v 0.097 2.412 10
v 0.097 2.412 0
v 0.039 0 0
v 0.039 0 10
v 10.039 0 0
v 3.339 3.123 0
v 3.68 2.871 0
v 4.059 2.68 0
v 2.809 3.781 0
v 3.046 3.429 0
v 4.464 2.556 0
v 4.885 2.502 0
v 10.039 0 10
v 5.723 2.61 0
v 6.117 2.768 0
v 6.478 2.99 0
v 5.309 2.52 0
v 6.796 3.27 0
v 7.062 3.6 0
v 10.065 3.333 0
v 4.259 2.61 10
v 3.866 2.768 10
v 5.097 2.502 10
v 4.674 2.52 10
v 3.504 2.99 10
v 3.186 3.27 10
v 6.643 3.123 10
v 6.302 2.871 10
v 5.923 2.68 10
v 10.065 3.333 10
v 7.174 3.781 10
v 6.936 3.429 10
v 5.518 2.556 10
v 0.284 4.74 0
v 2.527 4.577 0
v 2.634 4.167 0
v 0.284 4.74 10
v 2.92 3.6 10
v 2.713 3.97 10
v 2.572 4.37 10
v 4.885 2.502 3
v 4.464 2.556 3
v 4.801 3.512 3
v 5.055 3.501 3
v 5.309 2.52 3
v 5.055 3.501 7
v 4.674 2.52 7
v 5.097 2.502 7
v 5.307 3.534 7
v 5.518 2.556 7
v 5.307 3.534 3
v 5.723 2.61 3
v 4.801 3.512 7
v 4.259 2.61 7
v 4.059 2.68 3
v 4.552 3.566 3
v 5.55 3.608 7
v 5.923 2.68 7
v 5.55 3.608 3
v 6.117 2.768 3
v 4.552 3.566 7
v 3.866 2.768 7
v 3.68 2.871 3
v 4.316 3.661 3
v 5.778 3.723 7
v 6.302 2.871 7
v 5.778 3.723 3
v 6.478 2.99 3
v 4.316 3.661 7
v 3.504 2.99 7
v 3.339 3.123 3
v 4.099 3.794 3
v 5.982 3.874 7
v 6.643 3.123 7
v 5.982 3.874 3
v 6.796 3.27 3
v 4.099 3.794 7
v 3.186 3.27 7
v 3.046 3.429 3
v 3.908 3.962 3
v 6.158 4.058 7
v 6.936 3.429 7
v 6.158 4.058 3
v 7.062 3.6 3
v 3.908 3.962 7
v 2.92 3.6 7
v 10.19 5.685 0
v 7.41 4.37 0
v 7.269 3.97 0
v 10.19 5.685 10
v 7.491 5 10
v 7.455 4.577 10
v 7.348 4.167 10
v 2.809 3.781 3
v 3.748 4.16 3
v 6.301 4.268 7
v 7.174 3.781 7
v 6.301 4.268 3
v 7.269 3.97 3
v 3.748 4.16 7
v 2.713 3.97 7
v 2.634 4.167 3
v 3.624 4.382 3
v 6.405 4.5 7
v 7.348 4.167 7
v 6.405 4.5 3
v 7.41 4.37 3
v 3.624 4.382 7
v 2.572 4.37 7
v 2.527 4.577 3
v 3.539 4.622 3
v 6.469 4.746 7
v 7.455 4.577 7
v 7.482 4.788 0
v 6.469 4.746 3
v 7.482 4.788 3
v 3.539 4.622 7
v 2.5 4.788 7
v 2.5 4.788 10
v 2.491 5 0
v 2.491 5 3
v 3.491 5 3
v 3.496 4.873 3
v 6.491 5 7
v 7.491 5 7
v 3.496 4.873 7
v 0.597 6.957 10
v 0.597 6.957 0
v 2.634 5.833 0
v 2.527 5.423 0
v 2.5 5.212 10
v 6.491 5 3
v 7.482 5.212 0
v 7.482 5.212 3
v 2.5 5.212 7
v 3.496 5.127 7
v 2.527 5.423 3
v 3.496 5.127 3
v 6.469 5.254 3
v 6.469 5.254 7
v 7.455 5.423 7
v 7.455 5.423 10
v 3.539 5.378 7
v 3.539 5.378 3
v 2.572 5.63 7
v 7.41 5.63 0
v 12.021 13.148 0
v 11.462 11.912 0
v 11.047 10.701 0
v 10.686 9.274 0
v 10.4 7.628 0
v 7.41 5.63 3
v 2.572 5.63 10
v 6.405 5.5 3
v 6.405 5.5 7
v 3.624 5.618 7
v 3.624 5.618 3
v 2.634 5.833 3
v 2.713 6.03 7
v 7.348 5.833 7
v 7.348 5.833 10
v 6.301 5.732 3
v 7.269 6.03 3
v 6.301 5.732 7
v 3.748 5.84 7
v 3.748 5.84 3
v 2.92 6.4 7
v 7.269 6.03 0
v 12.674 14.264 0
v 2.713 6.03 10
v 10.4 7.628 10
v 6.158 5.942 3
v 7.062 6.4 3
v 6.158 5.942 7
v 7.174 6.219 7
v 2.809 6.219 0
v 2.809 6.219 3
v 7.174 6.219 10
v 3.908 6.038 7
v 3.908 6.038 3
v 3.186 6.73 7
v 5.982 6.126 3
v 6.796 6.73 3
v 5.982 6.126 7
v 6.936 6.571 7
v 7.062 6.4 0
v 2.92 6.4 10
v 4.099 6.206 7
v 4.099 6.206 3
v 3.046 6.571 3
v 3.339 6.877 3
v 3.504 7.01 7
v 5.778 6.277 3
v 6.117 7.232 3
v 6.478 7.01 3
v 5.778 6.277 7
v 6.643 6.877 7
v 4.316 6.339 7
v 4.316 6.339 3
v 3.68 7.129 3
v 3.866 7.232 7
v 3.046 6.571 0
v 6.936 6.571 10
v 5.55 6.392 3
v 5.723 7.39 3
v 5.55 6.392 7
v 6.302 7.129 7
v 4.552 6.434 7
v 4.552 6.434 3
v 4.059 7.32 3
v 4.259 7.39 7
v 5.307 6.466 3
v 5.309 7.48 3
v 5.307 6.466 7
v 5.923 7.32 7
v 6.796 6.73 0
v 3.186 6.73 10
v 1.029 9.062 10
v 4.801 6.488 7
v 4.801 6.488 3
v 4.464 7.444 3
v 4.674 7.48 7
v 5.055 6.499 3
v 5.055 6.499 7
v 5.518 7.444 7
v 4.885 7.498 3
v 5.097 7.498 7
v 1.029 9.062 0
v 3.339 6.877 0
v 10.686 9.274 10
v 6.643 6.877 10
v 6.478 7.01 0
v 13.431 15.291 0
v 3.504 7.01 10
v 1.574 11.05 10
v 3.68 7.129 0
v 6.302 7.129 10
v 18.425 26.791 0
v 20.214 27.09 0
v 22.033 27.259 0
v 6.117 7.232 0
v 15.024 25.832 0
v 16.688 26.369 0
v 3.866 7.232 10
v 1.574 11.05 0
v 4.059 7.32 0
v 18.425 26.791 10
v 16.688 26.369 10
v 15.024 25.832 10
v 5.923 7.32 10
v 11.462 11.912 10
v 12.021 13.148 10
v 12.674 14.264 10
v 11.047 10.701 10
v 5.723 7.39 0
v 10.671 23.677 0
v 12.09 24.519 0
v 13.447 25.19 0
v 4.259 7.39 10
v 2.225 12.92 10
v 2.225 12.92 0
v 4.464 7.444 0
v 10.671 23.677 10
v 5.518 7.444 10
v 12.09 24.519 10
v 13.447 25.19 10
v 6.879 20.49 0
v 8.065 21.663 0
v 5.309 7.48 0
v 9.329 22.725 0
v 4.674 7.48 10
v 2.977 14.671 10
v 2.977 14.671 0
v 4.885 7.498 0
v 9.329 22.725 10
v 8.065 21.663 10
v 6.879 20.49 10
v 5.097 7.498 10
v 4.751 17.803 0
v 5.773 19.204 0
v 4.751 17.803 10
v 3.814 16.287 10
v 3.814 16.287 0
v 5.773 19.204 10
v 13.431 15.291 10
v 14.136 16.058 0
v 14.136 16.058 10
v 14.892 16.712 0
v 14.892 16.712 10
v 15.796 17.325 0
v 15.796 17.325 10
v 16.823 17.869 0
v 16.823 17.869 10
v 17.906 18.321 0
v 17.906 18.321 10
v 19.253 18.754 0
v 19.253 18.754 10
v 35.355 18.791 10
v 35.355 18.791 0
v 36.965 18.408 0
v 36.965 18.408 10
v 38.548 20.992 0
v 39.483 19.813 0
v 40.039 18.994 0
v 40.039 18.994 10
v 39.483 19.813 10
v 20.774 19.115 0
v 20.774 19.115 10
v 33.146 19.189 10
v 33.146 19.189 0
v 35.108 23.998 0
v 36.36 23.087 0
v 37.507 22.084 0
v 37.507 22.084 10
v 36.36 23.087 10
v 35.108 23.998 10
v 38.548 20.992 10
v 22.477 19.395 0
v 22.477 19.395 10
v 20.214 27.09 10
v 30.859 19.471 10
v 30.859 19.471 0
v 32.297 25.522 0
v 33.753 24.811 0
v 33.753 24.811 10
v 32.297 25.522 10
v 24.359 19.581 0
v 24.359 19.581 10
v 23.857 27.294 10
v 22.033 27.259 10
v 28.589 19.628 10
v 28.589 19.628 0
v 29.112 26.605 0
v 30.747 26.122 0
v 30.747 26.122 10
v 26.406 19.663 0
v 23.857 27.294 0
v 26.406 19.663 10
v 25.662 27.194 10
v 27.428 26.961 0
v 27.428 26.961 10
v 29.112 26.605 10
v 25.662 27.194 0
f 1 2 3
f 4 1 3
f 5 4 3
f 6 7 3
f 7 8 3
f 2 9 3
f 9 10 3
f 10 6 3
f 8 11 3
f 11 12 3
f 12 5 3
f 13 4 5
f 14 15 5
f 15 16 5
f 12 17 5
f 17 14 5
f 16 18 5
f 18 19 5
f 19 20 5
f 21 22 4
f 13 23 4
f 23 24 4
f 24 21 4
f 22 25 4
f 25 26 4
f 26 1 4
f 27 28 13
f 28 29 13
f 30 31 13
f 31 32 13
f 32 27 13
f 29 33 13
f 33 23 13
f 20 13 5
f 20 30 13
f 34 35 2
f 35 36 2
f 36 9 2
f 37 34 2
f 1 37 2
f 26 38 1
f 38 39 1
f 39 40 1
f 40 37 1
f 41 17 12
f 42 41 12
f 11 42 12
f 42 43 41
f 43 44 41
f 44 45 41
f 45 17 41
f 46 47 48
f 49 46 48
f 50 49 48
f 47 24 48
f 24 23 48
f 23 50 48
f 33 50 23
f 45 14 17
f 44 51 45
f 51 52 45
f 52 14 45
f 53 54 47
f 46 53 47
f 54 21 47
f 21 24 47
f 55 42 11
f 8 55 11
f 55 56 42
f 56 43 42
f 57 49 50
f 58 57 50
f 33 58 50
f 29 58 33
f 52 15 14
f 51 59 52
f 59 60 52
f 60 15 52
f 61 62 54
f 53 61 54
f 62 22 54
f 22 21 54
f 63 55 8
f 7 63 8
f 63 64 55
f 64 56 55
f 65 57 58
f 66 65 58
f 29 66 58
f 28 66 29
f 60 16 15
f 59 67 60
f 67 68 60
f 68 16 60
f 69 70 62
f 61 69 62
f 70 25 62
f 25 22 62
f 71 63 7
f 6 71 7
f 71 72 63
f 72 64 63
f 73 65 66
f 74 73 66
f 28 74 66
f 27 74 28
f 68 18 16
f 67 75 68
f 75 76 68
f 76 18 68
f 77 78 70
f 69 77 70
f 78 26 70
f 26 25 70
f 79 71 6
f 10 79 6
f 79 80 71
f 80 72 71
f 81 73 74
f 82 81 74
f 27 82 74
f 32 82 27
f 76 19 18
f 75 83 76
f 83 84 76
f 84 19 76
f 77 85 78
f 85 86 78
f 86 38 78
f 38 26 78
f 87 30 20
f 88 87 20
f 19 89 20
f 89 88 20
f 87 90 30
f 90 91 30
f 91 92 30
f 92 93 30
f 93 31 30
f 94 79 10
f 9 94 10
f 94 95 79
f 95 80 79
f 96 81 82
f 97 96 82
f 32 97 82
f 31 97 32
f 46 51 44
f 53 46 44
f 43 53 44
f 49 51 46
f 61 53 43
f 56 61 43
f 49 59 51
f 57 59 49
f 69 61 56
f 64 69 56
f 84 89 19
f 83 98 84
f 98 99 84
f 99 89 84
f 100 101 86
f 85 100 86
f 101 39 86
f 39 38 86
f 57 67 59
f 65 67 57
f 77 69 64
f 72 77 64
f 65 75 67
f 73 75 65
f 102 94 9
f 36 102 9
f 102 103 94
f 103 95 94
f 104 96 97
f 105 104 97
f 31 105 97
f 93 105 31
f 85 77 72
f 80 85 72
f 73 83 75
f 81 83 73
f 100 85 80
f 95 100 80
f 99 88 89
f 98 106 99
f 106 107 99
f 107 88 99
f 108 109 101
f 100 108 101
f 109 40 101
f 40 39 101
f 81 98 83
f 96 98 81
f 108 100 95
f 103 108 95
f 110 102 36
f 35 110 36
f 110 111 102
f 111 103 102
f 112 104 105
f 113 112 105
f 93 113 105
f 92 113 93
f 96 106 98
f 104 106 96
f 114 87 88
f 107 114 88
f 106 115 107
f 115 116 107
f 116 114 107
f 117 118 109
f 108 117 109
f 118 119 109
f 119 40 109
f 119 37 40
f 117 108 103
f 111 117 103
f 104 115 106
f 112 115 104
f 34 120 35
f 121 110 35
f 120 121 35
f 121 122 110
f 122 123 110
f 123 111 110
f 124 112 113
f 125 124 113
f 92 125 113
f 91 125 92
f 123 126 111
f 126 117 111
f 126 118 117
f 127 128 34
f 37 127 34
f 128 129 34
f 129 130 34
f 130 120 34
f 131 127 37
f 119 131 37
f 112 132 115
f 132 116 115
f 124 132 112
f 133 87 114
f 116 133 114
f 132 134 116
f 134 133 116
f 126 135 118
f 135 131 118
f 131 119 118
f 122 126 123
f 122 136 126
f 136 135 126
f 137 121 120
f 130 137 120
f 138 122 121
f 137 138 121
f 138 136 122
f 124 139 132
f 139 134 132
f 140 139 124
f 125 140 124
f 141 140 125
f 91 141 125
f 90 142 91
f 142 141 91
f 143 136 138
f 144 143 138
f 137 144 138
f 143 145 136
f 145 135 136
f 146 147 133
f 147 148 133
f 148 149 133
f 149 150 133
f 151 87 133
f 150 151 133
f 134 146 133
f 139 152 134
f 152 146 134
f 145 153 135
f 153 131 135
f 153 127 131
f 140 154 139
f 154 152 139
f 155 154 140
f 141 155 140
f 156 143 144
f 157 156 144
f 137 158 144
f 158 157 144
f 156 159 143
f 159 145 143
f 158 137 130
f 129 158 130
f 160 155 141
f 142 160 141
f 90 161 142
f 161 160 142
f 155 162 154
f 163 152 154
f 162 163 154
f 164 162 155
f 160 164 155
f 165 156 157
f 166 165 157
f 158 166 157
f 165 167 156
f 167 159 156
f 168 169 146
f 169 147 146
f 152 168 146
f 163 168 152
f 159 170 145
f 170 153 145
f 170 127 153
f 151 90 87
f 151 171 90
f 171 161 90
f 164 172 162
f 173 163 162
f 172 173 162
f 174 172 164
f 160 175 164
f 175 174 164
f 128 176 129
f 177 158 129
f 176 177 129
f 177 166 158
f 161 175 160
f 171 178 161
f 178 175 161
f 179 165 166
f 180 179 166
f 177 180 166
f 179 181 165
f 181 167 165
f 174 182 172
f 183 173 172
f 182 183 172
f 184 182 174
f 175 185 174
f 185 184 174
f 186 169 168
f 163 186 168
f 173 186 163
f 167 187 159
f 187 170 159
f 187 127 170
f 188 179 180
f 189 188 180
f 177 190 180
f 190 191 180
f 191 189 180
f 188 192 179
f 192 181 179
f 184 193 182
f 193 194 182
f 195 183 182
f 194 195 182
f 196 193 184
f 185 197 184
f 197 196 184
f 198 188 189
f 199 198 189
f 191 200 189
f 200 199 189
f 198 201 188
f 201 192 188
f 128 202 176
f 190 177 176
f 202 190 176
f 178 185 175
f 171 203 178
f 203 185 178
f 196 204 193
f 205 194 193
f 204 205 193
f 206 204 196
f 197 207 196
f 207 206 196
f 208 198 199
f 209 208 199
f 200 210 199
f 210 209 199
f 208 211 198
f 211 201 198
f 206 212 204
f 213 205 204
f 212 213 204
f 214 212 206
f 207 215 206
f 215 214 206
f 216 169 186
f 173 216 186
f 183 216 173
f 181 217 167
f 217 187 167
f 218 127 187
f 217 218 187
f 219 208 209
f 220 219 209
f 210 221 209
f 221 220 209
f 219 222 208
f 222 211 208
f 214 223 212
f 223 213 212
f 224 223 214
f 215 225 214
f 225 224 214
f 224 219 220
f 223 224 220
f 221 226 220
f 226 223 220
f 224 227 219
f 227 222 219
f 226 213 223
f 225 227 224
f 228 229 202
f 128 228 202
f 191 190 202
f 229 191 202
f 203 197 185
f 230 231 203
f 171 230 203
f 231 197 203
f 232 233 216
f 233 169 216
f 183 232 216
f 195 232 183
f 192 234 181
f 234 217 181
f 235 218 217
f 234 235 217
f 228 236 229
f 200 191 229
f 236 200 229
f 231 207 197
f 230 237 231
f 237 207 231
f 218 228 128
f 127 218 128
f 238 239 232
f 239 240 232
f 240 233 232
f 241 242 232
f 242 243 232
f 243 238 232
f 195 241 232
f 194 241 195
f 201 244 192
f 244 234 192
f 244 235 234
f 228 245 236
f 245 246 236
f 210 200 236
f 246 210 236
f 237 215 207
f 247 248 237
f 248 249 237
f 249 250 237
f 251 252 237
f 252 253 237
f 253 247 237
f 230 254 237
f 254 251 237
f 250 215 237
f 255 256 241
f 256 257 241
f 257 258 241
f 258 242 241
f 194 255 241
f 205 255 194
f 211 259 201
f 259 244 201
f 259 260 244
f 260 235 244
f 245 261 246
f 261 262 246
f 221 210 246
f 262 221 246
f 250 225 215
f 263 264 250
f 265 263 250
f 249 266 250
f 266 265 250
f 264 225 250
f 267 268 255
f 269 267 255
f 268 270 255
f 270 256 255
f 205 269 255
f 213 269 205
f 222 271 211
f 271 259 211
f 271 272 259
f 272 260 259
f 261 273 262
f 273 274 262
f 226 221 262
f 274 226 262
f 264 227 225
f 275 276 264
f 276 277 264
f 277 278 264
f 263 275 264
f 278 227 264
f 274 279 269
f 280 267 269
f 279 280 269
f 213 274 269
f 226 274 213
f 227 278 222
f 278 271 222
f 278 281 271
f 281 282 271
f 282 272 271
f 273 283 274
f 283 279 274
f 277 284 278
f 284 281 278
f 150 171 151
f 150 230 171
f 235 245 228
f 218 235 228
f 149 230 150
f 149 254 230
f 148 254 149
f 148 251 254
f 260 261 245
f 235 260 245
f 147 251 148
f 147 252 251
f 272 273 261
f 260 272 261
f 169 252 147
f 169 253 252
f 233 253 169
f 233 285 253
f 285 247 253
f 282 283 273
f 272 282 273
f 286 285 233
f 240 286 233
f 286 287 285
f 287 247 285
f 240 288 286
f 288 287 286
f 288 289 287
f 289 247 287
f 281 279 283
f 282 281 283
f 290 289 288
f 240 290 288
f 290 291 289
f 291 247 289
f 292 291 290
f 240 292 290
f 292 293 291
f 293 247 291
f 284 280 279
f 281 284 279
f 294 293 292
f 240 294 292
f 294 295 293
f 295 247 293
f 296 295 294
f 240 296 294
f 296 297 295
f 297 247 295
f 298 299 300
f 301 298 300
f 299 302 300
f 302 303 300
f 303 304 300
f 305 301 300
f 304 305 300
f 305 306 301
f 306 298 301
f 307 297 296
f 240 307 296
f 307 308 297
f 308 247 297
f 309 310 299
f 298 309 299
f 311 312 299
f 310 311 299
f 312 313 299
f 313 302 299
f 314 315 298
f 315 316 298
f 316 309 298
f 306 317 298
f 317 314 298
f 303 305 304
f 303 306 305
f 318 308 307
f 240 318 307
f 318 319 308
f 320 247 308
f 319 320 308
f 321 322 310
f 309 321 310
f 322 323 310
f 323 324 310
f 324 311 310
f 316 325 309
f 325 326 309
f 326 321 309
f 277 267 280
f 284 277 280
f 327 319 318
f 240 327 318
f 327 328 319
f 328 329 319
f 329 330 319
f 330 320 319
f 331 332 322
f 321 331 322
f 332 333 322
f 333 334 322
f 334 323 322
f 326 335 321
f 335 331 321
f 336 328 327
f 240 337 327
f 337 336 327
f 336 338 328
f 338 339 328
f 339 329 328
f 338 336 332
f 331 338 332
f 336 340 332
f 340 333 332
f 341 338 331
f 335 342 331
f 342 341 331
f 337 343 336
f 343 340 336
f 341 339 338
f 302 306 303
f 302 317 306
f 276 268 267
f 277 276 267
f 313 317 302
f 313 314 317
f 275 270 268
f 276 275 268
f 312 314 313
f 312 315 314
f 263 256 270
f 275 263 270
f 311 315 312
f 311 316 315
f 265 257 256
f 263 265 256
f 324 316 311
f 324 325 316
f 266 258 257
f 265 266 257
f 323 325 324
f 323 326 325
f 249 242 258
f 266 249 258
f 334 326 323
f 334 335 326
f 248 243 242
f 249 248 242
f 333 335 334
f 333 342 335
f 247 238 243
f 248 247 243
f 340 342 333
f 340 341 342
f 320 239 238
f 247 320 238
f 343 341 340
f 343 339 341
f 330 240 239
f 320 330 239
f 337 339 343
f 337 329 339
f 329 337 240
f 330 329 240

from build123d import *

# Parameters (mm, degrees)
BOSS_EXTRU_1_DEPTH           = 10
ESQUISSE2_R                  = 1.5
ENL_V_MAT_EXTRU_1_DEPTH      = 10
ESQUISSE3_R                  = 2.5
ENL_V_MAT_EXTRU_2_DEPTH      = 3
ENL_V_START                  = -3
ESQUISSE4_R                  = 2.5
ENL_V_MAT_EXTRU_3_DEPTH      = 3
ENL_V_MAT_EXTRU_5_DEPTH      = 50.448460785
ENL_V_MAT_EXTRU_5_DEPTH_BACK = 10


with BuildPart() as part:
    # Esquisse1 → Boss.-Extru.1 (new body)
    with BuildSketch(Plane.XY):
        with BuildLine():
            Line((0, 0), (10, 0))
            add(Edge.make_bspline(
                [(10, 0), (9.921489326, 7.148546847), (10.713934518, 12.333283688), (18.75869357, 21.376035051), (34.363019417, 19.898437833), (40, 17.351511011)],
                knots=[0, 0, 0, 0, 0.337628769, 0.409350915, 1, 1, 1, 1], degree=3))
            Line((40, 17.351511011), (40, 18.993822565))
            add(Edge.make_bspline(
                [(0, 0), (-0.039213766, 11.180464065), (8.69921101, 30.121953716), (34.057263146, 28.337308065), (40, 18.993822565)],
                knots=[0, 0, 0, 0, 0.468371503, 1, 1, 1, 1], degree=3))
        make_face()
    extrude(amount=BOSS_EXTRU_1_DEPTH)

    # Esquisse2 → Enlèv. mat.-Extru.1 (cut)
    with BuildSketch(Plane.XY.offset(10)):
        with Locations((4.95185359, 5)):
            Circle(ESQUISSE2_R)
    extrude(amount=-ENL_V_MAT_EXTRU_1_DEPTH, mode=Mode.SUBTRACT)

    # Esquisse3 → Enlèv. mat.-Extru.2 (cut)
    with BuildSketch(Plane.XY.offset(10)):
        with Locations((4.95185359, 5)):
            Circle(ESQUISSE3_R)
    extrude(amount=-ENL_V_MAT_EXTRU_2_DEPTH, mode=Mode.SUBTRACT)

    # Esquisse4 → Enlèv. mat.-Extru.3 (cut)
    with BuildSketch(Plane(origin=(0, 0, 0), x_dir=(-1, 0, 0), z_dir=(0, 0, -1)).offset(ENL_V_START)):
        with Locations(Location((-4.95185359, 5, 0), (0, 0, 180))):
            Circle(ESQUISSE4_R)
    extrude(amount=ENL_V_MAT_EXTRU_3_DEPTH, mode=Mode.SUBTRACT)

    # Esquisse5 → Enlèv. mat.-Extru.5 (cut, two sides: drawn at the far end of the back side and taken through both)
    with BuildSketch(Plane.XY.offset(10).offset(-ENL_V_MAT_EXTRU_5_DEPTH_BACK)):
        with BuildLine():
            Line((40, 17.351511011), (40, 18.993822565))
            Line((40, 18.993822565), (36.925358186, 18.408031117))
            add(Edge.make_bspline(
                [(36.925358186, 18.408031117), (38.102088932, 18.094984676), (39.146032524, 17.737354573), (40, 17.351511011)],
                knots=[0.91052034, 0.91052034, 0.91052034, 0.91052034, 1, 1, 1, 1], degree=3))
        make_face()
    extrude(amount=ENL_V_MAT_EXTRU_5_DEPTH + ENL_V_MAT_EXTRU_5_DEPTH_BACK, mode=Mode.SUBTRACT)


solid = part.part
